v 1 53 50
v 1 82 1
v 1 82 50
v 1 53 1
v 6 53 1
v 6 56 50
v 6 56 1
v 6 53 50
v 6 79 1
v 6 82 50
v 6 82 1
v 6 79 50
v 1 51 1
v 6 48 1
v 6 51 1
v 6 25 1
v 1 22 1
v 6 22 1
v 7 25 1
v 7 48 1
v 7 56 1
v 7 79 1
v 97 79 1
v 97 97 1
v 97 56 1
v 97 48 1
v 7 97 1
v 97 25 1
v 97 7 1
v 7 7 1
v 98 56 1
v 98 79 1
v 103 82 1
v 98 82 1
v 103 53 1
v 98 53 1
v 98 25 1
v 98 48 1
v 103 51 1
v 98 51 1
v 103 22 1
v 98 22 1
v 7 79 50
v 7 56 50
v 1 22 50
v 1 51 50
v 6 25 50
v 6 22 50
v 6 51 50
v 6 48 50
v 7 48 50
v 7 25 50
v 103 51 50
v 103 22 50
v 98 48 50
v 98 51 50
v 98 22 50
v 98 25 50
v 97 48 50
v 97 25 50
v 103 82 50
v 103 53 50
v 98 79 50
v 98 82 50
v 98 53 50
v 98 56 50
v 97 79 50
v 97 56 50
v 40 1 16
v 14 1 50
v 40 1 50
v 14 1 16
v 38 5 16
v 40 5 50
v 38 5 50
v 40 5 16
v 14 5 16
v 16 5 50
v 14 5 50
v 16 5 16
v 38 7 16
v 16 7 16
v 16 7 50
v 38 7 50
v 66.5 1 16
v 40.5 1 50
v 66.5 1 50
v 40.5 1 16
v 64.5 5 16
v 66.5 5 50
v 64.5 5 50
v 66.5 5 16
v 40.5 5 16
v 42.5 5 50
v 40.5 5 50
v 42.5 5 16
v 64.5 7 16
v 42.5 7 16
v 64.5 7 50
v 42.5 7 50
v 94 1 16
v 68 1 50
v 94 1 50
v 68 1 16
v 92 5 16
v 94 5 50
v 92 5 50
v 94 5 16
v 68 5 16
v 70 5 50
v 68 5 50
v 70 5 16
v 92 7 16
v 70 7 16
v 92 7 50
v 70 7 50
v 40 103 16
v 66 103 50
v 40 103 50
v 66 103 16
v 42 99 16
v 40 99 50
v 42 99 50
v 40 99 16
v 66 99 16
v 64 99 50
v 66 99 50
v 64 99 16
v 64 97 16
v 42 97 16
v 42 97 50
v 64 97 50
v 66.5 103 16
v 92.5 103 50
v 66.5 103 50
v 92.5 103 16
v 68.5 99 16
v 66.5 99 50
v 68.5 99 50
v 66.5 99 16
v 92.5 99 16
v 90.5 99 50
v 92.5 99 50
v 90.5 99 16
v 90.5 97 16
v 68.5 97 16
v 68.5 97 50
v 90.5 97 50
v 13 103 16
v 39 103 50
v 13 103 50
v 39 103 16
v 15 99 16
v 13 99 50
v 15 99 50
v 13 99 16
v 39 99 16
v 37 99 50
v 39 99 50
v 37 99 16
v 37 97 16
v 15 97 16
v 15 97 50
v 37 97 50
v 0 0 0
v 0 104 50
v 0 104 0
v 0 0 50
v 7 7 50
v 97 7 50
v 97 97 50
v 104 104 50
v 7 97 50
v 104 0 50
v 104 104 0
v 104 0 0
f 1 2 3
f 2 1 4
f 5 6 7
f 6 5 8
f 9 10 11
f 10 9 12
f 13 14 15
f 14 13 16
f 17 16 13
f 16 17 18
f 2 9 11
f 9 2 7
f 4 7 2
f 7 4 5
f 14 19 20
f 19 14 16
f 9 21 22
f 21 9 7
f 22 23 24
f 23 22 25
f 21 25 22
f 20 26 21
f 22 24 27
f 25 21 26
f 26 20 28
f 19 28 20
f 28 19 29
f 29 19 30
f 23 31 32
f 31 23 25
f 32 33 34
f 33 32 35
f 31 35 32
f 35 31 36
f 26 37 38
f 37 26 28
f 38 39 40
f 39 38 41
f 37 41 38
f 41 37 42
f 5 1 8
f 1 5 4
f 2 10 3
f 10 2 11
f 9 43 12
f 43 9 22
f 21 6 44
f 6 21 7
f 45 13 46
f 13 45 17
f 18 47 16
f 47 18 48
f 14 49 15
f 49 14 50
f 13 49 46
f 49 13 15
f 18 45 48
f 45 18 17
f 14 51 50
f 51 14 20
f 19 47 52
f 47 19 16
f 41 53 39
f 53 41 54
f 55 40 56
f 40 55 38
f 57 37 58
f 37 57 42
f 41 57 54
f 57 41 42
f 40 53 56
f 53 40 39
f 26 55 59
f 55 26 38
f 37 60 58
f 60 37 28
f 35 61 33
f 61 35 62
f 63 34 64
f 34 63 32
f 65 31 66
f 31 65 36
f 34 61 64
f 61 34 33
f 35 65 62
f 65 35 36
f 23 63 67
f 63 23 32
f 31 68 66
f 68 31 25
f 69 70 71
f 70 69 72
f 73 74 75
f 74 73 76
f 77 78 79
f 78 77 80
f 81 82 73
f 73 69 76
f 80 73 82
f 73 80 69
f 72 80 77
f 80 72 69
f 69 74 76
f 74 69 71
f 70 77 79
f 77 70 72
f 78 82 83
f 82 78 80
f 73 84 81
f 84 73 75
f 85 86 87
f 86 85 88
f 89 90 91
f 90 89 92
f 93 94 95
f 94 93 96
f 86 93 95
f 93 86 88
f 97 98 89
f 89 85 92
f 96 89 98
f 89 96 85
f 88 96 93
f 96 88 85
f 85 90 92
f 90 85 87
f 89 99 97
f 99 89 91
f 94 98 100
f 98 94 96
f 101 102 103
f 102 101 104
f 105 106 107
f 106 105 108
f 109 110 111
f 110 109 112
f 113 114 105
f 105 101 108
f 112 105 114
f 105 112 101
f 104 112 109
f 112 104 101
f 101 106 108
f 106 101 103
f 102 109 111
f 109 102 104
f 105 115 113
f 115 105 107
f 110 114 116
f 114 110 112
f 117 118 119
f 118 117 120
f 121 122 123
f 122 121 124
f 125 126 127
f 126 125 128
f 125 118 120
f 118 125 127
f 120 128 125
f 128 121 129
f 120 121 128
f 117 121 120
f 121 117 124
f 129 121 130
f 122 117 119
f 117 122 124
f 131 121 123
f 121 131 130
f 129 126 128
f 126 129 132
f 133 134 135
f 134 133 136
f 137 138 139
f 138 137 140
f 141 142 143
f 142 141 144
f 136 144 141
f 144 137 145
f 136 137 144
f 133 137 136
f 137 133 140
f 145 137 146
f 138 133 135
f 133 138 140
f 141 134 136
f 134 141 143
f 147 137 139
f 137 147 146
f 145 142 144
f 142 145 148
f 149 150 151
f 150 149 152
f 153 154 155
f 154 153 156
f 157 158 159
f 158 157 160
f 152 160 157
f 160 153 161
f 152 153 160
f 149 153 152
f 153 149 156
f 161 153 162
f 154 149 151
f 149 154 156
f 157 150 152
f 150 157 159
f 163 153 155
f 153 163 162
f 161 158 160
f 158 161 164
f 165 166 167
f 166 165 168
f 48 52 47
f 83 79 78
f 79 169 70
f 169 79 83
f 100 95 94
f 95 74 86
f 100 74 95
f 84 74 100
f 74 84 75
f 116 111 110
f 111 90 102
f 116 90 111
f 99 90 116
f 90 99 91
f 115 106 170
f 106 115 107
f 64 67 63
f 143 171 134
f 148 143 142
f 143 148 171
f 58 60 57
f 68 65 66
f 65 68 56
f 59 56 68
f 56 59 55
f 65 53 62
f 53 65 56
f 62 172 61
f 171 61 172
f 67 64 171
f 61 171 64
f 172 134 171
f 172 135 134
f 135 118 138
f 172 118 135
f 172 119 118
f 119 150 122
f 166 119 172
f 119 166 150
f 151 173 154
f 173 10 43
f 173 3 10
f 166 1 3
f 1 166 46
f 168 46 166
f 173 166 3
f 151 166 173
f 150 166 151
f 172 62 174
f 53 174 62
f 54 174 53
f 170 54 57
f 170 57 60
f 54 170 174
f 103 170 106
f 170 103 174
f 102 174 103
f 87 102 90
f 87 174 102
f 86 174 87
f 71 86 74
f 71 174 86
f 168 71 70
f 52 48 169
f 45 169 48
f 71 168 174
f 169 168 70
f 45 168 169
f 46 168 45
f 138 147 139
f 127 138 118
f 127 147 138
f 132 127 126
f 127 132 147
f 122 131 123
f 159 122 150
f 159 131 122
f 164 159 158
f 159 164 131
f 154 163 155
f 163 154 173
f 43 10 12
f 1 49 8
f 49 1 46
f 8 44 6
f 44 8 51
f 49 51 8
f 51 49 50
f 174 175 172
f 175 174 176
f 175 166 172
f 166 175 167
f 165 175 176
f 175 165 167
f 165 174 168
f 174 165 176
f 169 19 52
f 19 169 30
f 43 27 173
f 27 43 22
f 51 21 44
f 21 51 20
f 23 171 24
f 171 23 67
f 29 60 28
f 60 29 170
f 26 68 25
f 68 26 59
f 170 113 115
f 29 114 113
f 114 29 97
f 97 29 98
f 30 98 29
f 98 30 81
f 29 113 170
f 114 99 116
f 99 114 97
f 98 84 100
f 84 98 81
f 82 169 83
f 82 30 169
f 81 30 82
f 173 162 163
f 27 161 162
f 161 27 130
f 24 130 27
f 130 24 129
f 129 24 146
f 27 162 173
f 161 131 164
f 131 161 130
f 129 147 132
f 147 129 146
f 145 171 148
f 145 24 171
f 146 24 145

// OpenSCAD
BOX_X = 104;
BOX_Y = 104;
BOX_Z = 50;

THICK = 1;
MARGIN = 6;


MODEL_W = 4;
MODEL_L = 26;
MODEL_M = 2;

DS_MODEL_W = 5;
DS_MODEL_L = 29;
DS_MODEL_M = 3;

difference() {
    cube(size = [
        BOX_X,
        BOX_Y, 
        BOX_Z]);

    translate([
        MARGIN + THICK, 
        MARGIN + THICK, 
        THICK]) {
            
        cube(size = [
            BOX_X - (MARGIN * 2) - (THICK * 2),
            BOX_Y - (MARGIN * 2) - (THICK * 2),
            BOX_Z]);
    }

    ds_modelSlot(THICK, (BOX_Y / 2) + 1, 0);
    ds_modelSlot(THICK, (BOX_Y / 2) - DS_MODEL_L - 1, 0);

    ds_modelSlot(THICK - BOX_X, -((BOX_Y / 2) - 1), 180);
    ds_modelSlot(THICK - BOX_X, -((BOX_Y / 2) + DS_MODEL_L + 1), 180);

    modelSlot(THICK, -40, 90);
    modelSlot(THICK, -((BOX_Y / 2) + (DS_MODEL_L / 2)), 90);
    modelSlot(THICK, -94, 90);
    
    modelSlot(THICK - BOX_X, 40, 270);
    modelSlot(THICK - BOX_X, (BOX_Y / 2) + (DS_MODEL_L / 2), 270);
    modelSlot(THICK - BOX_X, 13, 270);

    
    //modelSlot(90, 0, 0);
    //modelSlot(180, 0, 0);
    //modelSlot(270, 0, 0);
}

module modelSlot(x, y, rot) {
    rotate([0, 0, rot]) {
        translate([x, y, THICK + 15]) {
            cube(size = [
                MODEL_W,
                MODEL_L,
                BOX_Z - 15]);
        }        
        
        translate([x + MODEL_M, y + MODEL_M, THICK + 15]) {
            cube(size = [
                MODEL_W + 2,
                MODEL_L - (MODEL_M * 2),
                BOX_Z - 15]);
        }
    }
}

module ds_modelSlot(x, y, rot) {
    rotate([0, 0, rot]) {
        translate([x, y, THICK]) {
            cube(size = [
                DS_MODEL_W,
                DS_MODEL_L,
                BOX_Z]);
        }        
        
        translate([x + DS_MODEL_M, y + DS_MODEL_M, THICK]) {
            cube(size = [
                DS_MODEL_W + 2,
                DS_MODEL_L - (DS_MODEL_M * 2),
                BOX_Z]);
        }
    }
}
